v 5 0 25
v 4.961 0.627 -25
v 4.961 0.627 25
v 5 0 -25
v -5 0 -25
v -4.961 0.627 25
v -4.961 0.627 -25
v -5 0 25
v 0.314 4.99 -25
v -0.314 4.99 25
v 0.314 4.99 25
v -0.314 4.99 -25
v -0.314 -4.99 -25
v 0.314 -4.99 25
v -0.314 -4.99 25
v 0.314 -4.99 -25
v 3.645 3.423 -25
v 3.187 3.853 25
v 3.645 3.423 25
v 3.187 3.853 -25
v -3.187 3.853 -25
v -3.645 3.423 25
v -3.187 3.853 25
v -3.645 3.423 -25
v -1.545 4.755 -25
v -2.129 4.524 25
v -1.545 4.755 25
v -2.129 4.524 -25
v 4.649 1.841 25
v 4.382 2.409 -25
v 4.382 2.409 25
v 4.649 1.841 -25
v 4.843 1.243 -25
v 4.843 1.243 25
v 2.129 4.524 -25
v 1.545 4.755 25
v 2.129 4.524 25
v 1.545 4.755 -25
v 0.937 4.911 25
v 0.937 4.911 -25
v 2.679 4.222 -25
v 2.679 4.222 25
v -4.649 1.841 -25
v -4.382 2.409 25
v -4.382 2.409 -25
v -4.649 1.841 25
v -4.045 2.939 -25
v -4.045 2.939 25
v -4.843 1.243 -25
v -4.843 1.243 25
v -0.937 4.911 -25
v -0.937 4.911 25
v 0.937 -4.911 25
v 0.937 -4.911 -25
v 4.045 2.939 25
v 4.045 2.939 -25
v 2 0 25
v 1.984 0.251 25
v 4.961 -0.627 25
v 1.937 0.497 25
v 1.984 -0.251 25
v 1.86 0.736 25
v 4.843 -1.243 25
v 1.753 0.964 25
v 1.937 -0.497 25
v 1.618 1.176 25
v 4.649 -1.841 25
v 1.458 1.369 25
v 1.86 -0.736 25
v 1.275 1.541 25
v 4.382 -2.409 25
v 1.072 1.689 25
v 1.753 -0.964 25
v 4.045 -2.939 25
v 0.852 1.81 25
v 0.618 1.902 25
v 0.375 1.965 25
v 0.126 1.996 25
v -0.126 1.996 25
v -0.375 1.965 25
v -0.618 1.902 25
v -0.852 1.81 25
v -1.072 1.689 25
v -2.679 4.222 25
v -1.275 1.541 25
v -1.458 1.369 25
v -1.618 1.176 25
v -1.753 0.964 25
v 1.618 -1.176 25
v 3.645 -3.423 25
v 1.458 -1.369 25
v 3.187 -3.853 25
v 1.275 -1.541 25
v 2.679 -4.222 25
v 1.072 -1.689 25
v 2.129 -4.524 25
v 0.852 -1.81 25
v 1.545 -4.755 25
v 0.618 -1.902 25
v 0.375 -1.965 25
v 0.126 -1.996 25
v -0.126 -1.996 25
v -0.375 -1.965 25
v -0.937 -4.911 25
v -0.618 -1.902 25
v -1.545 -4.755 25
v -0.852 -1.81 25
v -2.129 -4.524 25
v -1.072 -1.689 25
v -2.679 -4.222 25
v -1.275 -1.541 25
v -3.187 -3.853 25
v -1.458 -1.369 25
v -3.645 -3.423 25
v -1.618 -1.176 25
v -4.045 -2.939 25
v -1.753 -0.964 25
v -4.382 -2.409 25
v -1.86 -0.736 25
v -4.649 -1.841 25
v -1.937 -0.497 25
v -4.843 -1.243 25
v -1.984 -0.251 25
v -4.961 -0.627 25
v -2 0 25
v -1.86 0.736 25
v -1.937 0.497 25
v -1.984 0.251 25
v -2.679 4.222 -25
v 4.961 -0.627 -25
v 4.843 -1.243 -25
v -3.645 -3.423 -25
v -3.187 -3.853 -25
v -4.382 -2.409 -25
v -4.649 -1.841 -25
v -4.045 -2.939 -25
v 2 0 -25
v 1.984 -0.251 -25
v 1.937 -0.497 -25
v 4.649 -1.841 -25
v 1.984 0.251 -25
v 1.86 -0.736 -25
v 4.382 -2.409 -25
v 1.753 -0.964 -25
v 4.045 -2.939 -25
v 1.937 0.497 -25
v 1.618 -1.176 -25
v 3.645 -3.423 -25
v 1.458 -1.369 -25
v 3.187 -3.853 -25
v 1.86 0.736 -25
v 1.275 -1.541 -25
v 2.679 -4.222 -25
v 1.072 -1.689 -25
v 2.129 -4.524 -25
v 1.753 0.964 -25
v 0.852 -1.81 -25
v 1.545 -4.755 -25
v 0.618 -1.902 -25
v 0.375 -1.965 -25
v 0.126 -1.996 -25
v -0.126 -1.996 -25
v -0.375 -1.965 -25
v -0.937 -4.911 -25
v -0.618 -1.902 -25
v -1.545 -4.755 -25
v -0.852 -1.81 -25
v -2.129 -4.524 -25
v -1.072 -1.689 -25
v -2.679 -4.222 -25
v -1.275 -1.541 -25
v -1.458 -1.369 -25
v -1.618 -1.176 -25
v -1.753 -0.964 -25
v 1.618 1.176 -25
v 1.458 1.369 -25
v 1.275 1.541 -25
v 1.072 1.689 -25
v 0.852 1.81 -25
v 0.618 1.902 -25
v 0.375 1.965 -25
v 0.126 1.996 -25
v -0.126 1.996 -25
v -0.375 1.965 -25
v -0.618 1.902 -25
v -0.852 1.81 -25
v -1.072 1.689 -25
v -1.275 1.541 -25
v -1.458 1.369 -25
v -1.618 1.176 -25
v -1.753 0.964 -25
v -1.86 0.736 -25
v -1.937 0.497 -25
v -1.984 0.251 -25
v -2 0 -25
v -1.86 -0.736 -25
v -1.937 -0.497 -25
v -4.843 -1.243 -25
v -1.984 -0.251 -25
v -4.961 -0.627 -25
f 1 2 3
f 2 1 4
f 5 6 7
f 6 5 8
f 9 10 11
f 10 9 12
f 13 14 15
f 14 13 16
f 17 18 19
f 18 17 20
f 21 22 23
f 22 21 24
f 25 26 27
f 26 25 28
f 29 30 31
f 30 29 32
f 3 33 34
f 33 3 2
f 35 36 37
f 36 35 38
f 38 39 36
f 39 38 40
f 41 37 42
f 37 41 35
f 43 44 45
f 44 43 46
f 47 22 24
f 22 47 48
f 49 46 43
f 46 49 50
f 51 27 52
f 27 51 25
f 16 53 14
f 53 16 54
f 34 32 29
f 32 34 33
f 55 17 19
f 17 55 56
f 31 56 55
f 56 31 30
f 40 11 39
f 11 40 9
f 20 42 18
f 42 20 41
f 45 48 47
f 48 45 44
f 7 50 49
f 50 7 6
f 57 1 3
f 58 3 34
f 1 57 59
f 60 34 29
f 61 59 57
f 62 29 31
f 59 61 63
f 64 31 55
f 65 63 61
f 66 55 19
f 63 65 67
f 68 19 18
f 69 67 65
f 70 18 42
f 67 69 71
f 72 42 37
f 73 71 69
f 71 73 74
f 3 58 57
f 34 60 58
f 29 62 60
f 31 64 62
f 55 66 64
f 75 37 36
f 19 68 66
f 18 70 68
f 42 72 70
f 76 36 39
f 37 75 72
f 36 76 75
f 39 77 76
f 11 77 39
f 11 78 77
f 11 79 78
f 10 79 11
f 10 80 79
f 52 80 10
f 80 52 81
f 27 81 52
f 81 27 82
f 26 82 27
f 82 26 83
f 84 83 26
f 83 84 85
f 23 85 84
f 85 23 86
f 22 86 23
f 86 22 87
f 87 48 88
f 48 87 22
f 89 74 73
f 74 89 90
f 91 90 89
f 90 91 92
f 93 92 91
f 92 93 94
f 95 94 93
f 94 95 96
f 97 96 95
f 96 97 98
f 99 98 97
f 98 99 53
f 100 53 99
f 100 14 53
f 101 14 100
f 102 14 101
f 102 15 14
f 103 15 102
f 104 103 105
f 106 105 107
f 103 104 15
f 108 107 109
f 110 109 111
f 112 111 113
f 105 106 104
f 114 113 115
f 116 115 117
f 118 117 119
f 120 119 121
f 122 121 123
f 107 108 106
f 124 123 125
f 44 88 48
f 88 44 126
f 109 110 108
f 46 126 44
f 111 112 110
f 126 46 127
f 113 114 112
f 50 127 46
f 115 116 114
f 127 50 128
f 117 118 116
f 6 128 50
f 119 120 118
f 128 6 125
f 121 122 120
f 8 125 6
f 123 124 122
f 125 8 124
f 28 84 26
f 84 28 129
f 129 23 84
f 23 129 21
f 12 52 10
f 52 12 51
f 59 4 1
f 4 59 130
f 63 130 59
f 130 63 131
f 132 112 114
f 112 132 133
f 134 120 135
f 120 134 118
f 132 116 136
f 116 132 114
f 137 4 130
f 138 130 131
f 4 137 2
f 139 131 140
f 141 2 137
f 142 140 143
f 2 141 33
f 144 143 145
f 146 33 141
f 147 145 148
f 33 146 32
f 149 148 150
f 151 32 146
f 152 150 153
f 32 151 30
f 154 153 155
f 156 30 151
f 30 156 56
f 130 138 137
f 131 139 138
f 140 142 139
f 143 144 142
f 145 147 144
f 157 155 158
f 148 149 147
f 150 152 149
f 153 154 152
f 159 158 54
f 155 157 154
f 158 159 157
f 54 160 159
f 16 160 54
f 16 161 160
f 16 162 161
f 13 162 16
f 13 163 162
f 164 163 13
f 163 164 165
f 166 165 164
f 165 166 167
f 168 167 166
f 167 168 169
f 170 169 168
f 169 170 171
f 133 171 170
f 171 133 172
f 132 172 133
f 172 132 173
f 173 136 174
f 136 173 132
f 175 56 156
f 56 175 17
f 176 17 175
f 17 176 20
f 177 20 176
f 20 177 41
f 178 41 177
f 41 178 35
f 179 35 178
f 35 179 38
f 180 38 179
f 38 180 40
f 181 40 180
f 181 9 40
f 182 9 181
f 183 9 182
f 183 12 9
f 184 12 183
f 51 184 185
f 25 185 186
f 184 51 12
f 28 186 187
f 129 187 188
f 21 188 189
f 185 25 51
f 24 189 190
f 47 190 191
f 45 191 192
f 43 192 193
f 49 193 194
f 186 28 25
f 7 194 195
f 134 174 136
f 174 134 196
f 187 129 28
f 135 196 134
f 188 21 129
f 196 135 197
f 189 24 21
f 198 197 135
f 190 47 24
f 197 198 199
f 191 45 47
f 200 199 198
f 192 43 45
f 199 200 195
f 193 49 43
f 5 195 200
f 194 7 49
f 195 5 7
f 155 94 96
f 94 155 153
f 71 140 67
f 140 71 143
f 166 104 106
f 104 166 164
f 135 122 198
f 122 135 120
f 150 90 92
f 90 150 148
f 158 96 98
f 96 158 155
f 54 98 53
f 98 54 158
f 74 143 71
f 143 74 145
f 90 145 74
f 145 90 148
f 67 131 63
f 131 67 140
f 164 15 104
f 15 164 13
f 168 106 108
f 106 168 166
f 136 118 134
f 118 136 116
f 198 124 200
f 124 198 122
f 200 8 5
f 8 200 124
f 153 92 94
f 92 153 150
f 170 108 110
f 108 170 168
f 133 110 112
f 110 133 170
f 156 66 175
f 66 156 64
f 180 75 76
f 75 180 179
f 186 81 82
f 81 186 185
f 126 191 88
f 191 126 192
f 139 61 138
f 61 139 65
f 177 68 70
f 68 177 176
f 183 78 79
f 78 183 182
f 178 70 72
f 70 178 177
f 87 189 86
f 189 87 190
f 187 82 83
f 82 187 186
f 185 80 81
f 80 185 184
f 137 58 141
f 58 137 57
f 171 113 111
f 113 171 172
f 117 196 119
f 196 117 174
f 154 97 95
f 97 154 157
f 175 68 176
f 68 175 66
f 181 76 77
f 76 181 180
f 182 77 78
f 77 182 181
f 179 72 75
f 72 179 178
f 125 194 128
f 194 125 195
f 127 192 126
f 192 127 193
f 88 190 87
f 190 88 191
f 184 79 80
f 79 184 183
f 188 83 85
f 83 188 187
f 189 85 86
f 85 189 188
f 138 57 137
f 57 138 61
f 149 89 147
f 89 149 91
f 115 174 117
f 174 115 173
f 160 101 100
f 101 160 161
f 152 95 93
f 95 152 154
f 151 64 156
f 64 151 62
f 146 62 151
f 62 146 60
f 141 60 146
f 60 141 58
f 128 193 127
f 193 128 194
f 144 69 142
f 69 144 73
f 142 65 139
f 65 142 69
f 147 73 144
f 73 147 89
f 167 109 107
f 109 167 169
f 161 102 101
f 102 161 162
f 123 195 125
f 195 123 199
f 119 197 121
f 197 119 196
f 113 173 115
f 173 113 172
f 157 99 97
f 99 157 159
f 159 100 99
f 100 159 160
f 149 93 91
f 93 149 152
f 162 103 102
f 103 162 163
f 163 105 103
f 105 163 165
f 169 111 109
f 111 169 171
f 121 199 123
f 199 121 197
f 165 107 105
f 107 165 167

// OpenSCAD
$fn = 50;


difference() {
	union() {
		translate(v = [0, 0, -25.0000000000]) {
			cylinder(h = 50, r = 5.0000000000);
		}
	}
	union() {
		translate(v = [0, 0, -100.0000000000]) {
			cylinder(h = 200, r = 2);
		}
	}
}
